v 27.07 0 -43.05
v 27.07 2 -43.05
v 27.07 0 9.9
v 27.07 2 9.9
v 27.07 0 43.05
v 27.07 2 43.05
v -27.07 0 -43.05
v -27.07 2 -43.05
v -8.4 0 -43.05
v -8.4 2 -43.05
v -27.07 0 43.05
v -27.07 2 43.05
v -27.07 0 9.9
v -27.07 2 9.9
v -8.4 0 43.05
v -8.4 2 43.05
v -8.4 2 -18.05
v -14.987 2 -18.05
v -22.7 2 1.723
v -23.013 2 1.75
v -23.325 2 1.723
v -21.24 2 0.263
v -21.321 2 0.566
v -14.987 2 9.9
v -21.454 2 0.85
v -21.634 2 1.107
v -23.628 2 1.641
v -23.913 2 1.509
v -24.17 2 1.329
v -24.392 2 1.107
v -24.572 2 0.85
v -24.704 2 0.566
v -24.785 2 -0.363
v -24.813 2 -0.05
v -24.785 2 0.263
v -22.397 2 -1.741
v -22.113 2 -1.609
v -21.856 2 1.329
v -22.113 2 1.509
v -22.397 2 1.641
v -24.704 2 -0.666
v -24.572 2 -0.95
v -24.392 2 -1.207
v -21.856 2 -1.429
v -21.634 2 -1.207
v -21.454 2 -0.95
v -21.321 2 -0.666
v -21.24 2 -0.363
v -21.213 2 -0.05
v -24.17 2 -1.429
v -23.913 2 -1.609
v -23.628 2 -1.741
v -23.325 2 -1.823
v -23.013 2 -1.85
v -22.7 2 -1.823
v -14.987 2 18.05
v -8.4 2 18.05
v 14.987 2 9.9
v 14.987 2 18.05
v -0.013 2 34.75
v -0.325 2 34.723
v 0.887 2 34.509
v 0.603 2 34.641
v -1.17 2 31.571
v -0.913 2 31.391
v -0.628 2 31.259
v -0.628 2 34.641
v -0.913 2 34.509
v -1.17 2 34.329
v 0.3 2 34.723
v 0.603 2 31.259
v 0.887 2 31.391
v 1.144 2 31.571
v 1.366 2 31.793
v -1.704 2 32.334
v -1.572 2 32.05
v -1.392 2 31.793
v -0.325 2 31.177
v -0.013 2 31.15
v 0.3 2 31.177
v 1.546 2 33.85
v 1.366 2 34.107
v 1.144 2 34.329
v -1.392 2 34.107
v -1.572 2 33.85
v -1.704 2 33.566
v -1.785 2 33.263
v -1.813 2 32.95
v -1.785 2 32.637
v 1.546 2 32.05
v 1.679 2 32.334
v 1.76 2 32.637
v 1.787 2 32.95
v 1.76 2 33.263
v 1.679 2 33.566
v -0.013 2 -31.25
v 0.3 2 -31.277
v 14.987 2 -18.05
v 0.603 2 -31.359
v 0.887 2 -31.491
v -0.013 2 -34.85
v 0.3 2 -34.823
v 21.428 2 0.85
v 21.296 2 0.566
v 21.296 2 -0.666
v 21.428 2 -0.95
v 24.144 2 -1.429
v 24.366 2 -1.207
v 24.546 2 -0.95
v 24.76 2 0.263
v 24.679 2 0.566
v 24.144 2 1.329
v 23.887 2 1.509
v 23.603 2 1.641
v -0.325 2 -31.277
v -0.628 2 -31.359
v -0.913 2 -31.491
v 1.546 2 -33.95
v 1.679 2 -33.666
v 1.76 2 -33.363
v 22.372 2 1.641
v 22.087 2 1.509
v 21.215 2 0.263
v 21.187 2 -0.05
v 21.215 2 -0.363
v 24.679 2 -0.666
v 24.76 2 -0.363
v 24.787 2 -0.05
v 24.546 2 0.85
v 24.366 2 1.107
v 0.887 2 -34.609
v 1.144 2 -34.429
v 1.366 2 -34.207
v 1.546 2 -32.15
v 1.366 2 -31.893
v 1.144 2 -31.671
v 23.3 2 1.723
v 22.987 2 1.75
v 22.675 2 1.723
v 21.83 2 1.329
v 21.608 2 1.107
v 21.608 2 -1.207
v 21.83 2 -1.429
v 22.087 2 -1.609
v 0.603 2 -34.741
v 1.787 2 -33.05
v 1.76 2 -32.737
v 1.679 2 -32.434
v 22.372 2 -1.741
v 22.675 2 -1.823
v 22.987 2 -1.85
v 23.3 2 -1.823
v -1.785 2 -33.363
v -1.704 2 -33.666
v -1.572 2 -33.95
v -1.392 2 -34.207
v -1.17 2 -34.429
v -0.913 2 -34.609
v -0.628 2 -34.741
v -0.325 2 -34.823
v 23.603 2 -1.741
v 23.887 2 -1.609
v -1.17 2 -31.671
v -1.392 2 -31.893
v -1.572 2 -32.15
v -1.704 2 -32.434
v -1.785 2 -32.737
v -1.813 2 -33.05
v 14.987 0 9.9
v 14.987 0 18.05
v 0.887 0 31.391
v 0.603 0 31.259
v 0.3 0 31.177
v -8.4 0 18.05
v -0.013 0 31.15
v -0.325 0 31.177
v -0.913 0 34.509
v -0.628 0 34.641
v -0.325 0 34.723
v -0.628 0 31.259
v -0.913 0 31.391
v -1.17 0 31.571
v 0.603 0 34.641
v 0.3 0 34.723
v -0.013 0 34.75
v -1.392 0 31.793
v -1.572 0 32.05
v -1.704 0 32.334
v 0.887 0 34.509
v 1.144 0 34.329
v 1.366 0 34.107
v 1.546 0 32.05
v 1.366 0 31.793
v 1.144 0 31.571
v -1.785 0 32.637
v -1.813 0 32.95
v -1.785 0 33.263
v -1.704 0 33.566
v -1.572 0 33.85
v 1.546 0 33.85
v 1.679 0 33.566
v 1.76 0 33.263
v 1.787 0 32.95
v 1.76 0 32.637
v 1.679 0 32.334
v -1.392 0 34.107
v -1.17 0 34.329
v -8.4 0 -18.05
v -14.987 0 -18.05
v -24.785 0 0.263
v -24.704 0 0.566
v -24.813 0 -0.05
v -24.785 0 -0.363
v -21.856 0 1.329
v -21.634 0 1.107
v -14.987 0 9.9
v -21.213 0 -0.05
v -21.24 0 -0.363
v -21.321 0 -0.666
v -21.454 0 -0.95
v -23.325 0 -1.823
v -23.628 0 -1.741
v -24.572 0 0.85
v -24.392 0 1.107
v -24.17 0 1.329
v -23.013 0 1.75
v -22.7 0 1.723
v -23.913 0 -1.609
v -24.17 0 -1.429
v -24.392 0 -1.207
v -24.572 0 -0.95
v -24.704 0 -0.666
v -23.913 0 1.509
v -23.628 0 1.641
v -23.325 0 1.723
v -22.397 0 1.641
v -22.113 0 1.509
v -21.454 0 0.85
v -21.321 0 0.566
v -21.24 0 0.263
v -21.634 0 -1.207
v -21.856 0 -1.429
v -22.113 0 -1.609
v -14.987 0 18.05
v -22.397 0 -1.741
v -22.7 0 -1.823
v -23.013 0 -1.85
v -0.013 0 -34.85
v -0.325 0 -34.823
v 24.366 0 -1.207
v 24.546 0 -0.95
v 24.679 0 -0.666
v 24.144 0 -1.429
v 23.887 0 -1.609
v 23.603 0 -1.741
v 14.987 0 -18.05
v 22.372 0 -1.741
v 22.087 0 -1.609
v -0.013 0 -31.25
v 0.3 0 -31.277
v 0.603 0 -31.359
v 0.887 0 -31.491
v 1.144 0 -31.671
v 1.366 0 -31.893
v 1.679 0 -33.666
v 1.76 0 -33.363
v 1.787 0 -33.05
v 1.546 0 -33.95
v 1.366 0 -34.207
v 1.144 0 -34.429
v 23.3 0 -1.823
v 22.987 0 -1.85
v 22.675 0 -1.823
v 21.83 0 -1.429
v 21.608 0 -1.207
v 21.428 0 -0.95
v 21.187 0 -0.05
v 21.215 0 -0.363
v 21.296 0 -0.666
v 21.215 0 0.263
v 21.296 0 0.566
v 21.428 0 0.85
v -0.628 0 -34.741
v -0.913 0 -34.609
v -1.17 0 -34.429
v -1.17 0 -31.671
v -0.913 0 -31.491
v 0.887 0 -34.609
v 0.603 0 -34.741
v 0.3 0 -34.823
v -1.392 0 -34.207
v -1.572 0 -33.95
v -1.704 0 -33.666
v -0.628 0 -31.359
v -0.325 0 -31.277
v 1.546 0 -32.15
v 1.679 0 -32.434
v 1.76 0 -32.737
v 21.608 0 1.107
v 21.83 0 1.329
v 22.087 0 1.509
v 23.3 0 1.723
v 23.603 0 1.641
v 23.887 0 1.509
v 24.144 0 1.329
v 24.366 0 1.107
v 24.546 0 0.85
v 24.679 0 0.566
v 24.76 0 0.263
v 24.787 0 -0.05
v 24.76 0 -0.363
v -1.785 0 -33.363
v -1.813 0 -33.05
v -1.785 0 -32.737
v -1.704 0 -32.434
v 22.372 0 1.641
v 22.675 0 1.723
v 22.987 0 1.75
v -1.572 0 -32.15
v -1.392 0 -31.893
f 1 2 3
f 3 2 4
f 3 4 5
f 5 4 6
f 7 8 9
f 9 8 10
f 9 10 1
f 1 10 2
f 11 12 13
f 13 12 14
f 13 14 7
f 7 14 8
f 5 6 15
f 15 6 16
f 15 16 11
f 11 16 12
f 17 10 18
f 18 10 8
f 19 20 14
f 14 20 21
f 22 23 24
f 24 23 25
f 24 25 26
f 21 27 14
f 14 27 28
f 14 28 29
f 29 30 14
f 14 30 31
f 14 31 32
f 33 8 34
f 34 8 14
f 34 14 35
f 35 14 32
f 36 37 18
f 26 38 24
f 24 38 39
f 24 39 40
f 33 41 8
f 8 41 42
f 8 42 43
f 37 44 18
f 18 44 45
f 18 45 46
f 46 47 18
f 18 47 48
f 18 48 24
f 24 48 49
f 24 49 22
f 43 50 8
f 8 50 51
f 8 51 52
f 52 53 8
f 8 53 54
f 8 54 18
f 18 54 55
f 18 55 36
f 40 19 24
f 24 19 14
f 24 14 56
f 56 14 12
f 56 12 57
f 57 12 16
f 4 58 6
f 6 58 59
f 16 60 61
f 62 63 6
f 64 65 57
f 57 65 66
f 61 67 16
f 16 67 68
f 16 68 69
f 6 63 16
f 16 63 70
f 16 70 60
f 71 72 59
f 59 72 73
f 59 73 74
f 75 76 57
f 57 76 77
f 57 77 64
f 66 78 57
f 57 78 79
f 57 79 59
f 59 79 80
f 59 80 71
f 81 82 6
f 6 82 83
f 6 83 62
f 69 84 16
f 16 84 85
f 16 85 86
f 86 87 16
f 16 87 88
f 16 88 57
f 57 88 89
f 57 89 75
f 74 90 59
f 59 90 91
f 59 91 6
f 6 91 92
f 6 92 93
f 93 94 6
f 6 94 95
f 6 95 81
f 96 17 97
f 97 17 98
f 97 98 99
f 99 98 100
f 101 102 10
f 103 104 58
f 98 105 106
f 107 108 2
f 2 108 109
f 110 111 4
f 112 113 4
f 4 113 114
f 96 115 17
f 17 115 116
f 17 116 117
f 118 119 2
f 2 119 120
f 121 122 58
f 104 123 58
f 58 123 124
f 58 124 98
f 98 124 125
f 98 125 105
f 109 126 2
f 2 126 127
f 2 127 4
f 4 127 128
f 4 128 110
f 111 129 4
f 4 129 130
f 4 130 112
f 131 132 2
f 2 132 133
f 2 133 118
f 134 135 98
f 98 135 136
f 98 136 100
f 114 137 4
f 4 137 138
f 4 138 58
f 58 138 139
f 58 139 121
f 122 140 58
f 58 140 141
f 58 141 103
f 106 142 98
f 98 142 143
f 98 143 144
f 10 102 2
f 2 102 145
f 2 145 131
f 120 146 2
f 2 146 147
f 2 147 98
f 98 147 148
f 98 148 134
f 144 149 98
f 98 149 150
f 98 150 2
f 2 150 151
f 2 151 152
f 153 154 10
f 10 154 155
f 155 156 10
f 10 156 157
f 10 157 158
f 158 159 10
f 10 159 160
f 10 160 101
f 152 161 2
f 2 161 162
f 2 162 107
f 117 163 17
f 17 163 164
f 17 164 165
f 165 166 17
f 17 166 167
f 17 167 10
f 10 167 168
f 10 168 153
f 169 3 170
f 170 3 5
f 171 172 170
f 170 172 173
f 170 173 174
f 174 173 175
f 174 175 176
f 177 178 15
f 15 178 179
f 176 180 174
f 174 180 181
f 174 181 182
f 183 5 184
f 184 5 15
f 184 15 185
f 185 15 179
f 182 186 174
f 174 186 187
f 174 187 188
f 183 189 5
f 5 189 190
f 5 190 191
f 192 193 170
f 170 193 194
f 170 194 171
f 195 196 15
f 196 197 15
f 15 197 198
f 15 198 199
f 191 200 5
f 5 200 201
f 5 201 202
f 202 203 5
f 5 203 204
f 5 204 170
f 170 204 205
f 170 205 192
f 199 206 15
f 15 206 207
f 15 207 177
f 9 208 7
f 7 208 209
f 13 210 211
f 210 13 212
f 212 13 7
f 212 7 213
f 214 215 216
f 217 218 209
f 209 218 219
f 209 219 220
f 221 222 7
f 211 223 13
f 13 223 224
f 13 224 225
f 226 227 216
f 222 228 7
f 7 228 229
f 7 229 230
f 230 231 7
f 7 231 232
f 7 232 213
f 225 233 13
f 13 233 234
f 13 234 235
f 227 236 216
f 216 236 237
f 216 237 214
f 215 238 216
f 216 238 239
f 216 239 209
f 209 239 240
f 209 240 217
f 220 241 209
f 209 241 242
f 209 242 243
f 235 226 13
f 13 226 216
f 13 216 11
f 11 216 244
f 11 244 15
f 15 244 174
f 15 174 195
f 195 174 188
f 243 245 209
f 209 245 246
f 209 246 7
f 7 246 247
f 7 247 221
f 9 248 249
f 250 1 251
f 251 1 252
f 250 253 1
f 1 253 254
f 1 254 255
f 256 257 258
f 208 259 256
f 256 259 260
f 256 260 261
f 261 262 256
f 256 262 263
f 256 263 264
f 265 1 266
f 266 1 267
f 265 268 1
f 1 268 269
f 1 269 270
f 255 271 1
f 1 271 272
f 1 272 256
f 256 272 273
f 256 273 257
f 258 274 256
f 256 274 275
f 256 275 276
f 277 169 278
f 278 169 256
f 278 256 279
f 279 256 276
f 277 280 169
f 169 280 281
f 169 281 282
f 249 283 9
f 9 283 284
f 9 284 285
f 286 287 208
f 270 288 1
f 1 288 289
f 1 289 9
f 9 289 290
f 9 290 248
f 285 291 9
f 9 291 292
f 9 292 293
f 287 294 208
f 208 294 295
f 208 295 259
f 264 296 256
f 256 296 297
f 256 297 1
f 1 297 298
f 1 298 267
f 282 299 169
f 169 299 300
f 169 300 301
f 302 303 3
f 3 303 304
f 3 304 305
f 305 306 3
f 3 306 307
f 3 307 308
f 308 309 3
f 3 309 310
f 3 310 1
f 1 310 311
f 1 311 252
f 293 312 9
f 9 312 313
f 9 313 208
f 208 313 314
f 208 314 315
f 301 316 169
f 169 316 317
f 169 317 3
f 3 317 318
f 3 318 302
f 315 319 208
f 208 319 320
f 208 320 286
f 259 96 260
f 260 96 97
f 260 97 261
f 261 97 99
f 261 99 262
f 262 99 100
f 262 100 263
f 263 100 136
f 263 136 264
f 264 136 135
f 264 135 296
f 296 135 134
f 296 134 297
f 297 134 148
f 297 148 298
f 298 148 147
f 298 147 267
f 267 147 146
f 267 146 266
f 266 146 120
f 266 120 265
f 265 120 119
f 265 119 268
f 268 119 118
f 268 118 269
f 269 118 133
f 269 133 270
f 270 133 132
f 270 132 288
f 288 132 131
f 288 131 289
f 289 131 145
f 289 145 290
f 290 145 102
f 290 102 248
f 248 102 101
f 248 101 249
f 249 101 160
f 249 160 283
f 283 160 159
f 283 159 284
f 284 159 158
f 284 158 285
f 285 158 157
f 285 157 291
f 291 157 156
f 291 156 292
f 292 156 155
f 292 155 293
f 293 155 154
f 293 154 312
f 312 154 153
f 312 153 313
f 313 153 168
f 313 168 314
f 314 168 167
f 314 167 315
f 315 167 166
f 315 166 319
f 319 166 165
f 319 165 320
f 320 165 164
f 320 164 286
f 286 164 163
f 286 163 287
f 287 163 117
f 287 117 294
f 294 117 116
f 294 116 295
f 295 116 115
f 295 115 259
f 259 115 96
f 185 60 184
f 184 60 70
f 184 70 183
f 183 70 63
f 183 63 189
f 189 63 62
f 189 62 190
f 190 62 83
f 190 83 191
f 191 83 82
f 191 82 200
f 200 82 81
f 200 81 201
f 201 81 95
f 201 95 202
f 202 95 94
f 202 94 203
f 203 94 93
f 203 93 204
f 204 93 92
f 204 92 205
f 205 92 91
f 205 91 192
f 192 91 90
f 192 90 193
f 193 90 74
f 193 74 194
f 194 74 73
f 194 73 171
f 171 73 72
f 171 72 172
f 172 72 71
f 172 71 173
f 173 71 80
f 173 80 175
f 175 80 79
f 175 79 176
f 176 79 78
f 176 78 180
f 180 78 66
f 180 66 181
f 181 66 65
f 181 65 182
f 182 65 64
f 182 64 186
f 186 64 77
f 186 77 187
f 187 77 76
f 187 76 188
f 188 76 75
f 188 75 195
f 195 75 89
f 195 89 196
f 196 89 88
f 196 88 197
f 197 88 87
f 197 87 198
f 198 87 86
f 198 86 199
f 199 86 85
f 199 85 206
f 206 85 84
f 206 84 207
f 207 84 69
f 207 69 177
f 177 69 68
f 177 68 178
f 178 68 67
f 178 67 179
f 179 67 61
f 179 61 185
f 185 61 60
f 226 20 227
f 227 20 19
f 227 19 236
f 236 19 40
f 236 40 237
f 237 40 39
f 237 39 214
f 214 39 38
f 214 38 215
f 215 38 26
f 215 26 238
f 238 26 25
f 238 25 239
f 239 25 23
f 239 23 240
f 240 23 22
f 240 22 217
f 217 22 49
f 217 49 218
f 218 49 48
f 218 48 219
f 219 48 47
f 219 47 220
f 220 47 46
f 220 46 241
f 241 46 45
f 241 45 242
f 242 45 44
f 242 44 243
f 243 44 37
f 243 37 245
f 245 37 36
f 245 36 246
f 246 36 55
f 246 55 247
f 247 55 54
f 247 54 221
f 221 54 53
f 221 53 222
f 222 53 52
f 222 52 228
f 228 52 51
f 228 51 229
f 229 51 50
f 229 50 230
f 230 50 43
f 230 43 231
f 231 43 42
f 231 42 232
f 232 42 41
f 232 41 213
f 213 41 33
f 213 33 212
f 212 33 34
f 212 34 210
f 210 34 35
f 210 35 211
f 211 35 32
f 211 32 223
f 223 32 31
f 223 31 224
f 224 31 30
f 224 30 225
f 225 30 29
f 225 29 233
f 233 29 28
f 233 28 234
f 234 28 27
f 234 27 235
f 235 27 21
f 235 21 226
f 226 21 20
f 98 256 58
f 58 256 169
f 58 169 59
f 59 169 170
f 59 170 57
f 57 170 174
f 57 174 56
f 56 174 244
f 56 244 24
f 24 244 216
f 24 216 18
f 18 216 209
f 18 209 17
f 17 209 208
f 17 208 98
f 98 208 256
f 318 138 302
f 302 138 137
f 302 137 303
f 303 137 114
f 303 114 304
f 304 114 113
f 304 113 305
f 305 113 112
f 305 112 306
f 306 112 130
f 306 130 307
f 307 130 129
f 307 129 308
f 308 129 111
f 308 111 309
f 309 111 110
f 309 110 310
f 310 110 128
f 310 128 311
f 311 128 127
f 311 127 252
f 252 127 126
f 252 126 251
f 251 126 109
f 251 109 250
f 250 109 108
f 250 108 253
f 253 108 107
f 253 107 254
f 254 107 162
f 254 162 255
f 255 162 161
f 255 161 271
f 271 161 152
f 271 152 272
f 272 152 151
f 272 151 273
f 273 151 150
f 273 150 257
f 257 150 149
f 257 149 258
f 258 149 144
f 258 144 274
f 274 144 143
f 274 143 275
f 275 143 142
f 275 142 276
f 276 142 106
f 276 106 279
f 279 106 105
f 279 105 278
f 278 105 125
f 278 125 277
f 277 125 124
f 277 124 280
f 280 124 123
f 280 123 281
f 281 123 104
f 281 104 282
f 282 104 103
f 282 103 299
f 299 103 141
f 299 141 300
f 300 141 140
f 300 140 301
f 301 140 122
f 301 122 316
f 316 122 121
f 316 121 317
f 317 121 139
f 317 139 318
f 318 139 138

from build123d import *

# Parameters (mm, degrees)
SKETCH1_W           = 54.14
SKETCH1_H           = 86.1
BOSS_EXTRUDE1_DEPTH = 2
SKETCH3_R           = 1.8
SKETCH3_W           = 29.974558808
SKETCH3_H           = 36.1
CUT_EXTRUDE1_DEPTH  = 2


with BuildPart() as part:
    # Sketch1 → Boss-Extrude1 (new body)
    with BuildSketch(Plane(origin=(0, 0, 0), x_dir=(1, 0, 0), z_dir=(0, 1, 0))):
        Rectangle(SKETCH1_W, SKETCH1_H)
    extrude(amount=BOSS_EXTRUDE1_DEPTH)

    # Sketch3 → Cut-Extrude1 (cut)
    with BuildSketch(Plane(origin=(0, 2, 0), x_dir=(1, 0, 0), z_dir=(0, 1, 0))):
        with Locations(Location((22.987279404, 0.05, 0), (0, 0, 270))):
            Circle(SKETCH3_R)
        with Locations(Location((-0.012720596, 33.05, 0), (0, 0, 270))):
            Circle(SKETCH3_R)
        with Locations(Location((-0.012720596, -32.95, 0), (0, 0, 270))):
            Circle(SKETCH3_R)
        with Locations(Location((-23.012720596, 0.05, 0), (0, 0, 270))):
            Circle(SKETCH3_R)
        Rectangle(SKETCH3_W, SKETCH3_H)
    extrude(amount=-CUT_EXTRUDE1_DEPTH, mode=Mode.SUBTRACT)


solid = part.part
